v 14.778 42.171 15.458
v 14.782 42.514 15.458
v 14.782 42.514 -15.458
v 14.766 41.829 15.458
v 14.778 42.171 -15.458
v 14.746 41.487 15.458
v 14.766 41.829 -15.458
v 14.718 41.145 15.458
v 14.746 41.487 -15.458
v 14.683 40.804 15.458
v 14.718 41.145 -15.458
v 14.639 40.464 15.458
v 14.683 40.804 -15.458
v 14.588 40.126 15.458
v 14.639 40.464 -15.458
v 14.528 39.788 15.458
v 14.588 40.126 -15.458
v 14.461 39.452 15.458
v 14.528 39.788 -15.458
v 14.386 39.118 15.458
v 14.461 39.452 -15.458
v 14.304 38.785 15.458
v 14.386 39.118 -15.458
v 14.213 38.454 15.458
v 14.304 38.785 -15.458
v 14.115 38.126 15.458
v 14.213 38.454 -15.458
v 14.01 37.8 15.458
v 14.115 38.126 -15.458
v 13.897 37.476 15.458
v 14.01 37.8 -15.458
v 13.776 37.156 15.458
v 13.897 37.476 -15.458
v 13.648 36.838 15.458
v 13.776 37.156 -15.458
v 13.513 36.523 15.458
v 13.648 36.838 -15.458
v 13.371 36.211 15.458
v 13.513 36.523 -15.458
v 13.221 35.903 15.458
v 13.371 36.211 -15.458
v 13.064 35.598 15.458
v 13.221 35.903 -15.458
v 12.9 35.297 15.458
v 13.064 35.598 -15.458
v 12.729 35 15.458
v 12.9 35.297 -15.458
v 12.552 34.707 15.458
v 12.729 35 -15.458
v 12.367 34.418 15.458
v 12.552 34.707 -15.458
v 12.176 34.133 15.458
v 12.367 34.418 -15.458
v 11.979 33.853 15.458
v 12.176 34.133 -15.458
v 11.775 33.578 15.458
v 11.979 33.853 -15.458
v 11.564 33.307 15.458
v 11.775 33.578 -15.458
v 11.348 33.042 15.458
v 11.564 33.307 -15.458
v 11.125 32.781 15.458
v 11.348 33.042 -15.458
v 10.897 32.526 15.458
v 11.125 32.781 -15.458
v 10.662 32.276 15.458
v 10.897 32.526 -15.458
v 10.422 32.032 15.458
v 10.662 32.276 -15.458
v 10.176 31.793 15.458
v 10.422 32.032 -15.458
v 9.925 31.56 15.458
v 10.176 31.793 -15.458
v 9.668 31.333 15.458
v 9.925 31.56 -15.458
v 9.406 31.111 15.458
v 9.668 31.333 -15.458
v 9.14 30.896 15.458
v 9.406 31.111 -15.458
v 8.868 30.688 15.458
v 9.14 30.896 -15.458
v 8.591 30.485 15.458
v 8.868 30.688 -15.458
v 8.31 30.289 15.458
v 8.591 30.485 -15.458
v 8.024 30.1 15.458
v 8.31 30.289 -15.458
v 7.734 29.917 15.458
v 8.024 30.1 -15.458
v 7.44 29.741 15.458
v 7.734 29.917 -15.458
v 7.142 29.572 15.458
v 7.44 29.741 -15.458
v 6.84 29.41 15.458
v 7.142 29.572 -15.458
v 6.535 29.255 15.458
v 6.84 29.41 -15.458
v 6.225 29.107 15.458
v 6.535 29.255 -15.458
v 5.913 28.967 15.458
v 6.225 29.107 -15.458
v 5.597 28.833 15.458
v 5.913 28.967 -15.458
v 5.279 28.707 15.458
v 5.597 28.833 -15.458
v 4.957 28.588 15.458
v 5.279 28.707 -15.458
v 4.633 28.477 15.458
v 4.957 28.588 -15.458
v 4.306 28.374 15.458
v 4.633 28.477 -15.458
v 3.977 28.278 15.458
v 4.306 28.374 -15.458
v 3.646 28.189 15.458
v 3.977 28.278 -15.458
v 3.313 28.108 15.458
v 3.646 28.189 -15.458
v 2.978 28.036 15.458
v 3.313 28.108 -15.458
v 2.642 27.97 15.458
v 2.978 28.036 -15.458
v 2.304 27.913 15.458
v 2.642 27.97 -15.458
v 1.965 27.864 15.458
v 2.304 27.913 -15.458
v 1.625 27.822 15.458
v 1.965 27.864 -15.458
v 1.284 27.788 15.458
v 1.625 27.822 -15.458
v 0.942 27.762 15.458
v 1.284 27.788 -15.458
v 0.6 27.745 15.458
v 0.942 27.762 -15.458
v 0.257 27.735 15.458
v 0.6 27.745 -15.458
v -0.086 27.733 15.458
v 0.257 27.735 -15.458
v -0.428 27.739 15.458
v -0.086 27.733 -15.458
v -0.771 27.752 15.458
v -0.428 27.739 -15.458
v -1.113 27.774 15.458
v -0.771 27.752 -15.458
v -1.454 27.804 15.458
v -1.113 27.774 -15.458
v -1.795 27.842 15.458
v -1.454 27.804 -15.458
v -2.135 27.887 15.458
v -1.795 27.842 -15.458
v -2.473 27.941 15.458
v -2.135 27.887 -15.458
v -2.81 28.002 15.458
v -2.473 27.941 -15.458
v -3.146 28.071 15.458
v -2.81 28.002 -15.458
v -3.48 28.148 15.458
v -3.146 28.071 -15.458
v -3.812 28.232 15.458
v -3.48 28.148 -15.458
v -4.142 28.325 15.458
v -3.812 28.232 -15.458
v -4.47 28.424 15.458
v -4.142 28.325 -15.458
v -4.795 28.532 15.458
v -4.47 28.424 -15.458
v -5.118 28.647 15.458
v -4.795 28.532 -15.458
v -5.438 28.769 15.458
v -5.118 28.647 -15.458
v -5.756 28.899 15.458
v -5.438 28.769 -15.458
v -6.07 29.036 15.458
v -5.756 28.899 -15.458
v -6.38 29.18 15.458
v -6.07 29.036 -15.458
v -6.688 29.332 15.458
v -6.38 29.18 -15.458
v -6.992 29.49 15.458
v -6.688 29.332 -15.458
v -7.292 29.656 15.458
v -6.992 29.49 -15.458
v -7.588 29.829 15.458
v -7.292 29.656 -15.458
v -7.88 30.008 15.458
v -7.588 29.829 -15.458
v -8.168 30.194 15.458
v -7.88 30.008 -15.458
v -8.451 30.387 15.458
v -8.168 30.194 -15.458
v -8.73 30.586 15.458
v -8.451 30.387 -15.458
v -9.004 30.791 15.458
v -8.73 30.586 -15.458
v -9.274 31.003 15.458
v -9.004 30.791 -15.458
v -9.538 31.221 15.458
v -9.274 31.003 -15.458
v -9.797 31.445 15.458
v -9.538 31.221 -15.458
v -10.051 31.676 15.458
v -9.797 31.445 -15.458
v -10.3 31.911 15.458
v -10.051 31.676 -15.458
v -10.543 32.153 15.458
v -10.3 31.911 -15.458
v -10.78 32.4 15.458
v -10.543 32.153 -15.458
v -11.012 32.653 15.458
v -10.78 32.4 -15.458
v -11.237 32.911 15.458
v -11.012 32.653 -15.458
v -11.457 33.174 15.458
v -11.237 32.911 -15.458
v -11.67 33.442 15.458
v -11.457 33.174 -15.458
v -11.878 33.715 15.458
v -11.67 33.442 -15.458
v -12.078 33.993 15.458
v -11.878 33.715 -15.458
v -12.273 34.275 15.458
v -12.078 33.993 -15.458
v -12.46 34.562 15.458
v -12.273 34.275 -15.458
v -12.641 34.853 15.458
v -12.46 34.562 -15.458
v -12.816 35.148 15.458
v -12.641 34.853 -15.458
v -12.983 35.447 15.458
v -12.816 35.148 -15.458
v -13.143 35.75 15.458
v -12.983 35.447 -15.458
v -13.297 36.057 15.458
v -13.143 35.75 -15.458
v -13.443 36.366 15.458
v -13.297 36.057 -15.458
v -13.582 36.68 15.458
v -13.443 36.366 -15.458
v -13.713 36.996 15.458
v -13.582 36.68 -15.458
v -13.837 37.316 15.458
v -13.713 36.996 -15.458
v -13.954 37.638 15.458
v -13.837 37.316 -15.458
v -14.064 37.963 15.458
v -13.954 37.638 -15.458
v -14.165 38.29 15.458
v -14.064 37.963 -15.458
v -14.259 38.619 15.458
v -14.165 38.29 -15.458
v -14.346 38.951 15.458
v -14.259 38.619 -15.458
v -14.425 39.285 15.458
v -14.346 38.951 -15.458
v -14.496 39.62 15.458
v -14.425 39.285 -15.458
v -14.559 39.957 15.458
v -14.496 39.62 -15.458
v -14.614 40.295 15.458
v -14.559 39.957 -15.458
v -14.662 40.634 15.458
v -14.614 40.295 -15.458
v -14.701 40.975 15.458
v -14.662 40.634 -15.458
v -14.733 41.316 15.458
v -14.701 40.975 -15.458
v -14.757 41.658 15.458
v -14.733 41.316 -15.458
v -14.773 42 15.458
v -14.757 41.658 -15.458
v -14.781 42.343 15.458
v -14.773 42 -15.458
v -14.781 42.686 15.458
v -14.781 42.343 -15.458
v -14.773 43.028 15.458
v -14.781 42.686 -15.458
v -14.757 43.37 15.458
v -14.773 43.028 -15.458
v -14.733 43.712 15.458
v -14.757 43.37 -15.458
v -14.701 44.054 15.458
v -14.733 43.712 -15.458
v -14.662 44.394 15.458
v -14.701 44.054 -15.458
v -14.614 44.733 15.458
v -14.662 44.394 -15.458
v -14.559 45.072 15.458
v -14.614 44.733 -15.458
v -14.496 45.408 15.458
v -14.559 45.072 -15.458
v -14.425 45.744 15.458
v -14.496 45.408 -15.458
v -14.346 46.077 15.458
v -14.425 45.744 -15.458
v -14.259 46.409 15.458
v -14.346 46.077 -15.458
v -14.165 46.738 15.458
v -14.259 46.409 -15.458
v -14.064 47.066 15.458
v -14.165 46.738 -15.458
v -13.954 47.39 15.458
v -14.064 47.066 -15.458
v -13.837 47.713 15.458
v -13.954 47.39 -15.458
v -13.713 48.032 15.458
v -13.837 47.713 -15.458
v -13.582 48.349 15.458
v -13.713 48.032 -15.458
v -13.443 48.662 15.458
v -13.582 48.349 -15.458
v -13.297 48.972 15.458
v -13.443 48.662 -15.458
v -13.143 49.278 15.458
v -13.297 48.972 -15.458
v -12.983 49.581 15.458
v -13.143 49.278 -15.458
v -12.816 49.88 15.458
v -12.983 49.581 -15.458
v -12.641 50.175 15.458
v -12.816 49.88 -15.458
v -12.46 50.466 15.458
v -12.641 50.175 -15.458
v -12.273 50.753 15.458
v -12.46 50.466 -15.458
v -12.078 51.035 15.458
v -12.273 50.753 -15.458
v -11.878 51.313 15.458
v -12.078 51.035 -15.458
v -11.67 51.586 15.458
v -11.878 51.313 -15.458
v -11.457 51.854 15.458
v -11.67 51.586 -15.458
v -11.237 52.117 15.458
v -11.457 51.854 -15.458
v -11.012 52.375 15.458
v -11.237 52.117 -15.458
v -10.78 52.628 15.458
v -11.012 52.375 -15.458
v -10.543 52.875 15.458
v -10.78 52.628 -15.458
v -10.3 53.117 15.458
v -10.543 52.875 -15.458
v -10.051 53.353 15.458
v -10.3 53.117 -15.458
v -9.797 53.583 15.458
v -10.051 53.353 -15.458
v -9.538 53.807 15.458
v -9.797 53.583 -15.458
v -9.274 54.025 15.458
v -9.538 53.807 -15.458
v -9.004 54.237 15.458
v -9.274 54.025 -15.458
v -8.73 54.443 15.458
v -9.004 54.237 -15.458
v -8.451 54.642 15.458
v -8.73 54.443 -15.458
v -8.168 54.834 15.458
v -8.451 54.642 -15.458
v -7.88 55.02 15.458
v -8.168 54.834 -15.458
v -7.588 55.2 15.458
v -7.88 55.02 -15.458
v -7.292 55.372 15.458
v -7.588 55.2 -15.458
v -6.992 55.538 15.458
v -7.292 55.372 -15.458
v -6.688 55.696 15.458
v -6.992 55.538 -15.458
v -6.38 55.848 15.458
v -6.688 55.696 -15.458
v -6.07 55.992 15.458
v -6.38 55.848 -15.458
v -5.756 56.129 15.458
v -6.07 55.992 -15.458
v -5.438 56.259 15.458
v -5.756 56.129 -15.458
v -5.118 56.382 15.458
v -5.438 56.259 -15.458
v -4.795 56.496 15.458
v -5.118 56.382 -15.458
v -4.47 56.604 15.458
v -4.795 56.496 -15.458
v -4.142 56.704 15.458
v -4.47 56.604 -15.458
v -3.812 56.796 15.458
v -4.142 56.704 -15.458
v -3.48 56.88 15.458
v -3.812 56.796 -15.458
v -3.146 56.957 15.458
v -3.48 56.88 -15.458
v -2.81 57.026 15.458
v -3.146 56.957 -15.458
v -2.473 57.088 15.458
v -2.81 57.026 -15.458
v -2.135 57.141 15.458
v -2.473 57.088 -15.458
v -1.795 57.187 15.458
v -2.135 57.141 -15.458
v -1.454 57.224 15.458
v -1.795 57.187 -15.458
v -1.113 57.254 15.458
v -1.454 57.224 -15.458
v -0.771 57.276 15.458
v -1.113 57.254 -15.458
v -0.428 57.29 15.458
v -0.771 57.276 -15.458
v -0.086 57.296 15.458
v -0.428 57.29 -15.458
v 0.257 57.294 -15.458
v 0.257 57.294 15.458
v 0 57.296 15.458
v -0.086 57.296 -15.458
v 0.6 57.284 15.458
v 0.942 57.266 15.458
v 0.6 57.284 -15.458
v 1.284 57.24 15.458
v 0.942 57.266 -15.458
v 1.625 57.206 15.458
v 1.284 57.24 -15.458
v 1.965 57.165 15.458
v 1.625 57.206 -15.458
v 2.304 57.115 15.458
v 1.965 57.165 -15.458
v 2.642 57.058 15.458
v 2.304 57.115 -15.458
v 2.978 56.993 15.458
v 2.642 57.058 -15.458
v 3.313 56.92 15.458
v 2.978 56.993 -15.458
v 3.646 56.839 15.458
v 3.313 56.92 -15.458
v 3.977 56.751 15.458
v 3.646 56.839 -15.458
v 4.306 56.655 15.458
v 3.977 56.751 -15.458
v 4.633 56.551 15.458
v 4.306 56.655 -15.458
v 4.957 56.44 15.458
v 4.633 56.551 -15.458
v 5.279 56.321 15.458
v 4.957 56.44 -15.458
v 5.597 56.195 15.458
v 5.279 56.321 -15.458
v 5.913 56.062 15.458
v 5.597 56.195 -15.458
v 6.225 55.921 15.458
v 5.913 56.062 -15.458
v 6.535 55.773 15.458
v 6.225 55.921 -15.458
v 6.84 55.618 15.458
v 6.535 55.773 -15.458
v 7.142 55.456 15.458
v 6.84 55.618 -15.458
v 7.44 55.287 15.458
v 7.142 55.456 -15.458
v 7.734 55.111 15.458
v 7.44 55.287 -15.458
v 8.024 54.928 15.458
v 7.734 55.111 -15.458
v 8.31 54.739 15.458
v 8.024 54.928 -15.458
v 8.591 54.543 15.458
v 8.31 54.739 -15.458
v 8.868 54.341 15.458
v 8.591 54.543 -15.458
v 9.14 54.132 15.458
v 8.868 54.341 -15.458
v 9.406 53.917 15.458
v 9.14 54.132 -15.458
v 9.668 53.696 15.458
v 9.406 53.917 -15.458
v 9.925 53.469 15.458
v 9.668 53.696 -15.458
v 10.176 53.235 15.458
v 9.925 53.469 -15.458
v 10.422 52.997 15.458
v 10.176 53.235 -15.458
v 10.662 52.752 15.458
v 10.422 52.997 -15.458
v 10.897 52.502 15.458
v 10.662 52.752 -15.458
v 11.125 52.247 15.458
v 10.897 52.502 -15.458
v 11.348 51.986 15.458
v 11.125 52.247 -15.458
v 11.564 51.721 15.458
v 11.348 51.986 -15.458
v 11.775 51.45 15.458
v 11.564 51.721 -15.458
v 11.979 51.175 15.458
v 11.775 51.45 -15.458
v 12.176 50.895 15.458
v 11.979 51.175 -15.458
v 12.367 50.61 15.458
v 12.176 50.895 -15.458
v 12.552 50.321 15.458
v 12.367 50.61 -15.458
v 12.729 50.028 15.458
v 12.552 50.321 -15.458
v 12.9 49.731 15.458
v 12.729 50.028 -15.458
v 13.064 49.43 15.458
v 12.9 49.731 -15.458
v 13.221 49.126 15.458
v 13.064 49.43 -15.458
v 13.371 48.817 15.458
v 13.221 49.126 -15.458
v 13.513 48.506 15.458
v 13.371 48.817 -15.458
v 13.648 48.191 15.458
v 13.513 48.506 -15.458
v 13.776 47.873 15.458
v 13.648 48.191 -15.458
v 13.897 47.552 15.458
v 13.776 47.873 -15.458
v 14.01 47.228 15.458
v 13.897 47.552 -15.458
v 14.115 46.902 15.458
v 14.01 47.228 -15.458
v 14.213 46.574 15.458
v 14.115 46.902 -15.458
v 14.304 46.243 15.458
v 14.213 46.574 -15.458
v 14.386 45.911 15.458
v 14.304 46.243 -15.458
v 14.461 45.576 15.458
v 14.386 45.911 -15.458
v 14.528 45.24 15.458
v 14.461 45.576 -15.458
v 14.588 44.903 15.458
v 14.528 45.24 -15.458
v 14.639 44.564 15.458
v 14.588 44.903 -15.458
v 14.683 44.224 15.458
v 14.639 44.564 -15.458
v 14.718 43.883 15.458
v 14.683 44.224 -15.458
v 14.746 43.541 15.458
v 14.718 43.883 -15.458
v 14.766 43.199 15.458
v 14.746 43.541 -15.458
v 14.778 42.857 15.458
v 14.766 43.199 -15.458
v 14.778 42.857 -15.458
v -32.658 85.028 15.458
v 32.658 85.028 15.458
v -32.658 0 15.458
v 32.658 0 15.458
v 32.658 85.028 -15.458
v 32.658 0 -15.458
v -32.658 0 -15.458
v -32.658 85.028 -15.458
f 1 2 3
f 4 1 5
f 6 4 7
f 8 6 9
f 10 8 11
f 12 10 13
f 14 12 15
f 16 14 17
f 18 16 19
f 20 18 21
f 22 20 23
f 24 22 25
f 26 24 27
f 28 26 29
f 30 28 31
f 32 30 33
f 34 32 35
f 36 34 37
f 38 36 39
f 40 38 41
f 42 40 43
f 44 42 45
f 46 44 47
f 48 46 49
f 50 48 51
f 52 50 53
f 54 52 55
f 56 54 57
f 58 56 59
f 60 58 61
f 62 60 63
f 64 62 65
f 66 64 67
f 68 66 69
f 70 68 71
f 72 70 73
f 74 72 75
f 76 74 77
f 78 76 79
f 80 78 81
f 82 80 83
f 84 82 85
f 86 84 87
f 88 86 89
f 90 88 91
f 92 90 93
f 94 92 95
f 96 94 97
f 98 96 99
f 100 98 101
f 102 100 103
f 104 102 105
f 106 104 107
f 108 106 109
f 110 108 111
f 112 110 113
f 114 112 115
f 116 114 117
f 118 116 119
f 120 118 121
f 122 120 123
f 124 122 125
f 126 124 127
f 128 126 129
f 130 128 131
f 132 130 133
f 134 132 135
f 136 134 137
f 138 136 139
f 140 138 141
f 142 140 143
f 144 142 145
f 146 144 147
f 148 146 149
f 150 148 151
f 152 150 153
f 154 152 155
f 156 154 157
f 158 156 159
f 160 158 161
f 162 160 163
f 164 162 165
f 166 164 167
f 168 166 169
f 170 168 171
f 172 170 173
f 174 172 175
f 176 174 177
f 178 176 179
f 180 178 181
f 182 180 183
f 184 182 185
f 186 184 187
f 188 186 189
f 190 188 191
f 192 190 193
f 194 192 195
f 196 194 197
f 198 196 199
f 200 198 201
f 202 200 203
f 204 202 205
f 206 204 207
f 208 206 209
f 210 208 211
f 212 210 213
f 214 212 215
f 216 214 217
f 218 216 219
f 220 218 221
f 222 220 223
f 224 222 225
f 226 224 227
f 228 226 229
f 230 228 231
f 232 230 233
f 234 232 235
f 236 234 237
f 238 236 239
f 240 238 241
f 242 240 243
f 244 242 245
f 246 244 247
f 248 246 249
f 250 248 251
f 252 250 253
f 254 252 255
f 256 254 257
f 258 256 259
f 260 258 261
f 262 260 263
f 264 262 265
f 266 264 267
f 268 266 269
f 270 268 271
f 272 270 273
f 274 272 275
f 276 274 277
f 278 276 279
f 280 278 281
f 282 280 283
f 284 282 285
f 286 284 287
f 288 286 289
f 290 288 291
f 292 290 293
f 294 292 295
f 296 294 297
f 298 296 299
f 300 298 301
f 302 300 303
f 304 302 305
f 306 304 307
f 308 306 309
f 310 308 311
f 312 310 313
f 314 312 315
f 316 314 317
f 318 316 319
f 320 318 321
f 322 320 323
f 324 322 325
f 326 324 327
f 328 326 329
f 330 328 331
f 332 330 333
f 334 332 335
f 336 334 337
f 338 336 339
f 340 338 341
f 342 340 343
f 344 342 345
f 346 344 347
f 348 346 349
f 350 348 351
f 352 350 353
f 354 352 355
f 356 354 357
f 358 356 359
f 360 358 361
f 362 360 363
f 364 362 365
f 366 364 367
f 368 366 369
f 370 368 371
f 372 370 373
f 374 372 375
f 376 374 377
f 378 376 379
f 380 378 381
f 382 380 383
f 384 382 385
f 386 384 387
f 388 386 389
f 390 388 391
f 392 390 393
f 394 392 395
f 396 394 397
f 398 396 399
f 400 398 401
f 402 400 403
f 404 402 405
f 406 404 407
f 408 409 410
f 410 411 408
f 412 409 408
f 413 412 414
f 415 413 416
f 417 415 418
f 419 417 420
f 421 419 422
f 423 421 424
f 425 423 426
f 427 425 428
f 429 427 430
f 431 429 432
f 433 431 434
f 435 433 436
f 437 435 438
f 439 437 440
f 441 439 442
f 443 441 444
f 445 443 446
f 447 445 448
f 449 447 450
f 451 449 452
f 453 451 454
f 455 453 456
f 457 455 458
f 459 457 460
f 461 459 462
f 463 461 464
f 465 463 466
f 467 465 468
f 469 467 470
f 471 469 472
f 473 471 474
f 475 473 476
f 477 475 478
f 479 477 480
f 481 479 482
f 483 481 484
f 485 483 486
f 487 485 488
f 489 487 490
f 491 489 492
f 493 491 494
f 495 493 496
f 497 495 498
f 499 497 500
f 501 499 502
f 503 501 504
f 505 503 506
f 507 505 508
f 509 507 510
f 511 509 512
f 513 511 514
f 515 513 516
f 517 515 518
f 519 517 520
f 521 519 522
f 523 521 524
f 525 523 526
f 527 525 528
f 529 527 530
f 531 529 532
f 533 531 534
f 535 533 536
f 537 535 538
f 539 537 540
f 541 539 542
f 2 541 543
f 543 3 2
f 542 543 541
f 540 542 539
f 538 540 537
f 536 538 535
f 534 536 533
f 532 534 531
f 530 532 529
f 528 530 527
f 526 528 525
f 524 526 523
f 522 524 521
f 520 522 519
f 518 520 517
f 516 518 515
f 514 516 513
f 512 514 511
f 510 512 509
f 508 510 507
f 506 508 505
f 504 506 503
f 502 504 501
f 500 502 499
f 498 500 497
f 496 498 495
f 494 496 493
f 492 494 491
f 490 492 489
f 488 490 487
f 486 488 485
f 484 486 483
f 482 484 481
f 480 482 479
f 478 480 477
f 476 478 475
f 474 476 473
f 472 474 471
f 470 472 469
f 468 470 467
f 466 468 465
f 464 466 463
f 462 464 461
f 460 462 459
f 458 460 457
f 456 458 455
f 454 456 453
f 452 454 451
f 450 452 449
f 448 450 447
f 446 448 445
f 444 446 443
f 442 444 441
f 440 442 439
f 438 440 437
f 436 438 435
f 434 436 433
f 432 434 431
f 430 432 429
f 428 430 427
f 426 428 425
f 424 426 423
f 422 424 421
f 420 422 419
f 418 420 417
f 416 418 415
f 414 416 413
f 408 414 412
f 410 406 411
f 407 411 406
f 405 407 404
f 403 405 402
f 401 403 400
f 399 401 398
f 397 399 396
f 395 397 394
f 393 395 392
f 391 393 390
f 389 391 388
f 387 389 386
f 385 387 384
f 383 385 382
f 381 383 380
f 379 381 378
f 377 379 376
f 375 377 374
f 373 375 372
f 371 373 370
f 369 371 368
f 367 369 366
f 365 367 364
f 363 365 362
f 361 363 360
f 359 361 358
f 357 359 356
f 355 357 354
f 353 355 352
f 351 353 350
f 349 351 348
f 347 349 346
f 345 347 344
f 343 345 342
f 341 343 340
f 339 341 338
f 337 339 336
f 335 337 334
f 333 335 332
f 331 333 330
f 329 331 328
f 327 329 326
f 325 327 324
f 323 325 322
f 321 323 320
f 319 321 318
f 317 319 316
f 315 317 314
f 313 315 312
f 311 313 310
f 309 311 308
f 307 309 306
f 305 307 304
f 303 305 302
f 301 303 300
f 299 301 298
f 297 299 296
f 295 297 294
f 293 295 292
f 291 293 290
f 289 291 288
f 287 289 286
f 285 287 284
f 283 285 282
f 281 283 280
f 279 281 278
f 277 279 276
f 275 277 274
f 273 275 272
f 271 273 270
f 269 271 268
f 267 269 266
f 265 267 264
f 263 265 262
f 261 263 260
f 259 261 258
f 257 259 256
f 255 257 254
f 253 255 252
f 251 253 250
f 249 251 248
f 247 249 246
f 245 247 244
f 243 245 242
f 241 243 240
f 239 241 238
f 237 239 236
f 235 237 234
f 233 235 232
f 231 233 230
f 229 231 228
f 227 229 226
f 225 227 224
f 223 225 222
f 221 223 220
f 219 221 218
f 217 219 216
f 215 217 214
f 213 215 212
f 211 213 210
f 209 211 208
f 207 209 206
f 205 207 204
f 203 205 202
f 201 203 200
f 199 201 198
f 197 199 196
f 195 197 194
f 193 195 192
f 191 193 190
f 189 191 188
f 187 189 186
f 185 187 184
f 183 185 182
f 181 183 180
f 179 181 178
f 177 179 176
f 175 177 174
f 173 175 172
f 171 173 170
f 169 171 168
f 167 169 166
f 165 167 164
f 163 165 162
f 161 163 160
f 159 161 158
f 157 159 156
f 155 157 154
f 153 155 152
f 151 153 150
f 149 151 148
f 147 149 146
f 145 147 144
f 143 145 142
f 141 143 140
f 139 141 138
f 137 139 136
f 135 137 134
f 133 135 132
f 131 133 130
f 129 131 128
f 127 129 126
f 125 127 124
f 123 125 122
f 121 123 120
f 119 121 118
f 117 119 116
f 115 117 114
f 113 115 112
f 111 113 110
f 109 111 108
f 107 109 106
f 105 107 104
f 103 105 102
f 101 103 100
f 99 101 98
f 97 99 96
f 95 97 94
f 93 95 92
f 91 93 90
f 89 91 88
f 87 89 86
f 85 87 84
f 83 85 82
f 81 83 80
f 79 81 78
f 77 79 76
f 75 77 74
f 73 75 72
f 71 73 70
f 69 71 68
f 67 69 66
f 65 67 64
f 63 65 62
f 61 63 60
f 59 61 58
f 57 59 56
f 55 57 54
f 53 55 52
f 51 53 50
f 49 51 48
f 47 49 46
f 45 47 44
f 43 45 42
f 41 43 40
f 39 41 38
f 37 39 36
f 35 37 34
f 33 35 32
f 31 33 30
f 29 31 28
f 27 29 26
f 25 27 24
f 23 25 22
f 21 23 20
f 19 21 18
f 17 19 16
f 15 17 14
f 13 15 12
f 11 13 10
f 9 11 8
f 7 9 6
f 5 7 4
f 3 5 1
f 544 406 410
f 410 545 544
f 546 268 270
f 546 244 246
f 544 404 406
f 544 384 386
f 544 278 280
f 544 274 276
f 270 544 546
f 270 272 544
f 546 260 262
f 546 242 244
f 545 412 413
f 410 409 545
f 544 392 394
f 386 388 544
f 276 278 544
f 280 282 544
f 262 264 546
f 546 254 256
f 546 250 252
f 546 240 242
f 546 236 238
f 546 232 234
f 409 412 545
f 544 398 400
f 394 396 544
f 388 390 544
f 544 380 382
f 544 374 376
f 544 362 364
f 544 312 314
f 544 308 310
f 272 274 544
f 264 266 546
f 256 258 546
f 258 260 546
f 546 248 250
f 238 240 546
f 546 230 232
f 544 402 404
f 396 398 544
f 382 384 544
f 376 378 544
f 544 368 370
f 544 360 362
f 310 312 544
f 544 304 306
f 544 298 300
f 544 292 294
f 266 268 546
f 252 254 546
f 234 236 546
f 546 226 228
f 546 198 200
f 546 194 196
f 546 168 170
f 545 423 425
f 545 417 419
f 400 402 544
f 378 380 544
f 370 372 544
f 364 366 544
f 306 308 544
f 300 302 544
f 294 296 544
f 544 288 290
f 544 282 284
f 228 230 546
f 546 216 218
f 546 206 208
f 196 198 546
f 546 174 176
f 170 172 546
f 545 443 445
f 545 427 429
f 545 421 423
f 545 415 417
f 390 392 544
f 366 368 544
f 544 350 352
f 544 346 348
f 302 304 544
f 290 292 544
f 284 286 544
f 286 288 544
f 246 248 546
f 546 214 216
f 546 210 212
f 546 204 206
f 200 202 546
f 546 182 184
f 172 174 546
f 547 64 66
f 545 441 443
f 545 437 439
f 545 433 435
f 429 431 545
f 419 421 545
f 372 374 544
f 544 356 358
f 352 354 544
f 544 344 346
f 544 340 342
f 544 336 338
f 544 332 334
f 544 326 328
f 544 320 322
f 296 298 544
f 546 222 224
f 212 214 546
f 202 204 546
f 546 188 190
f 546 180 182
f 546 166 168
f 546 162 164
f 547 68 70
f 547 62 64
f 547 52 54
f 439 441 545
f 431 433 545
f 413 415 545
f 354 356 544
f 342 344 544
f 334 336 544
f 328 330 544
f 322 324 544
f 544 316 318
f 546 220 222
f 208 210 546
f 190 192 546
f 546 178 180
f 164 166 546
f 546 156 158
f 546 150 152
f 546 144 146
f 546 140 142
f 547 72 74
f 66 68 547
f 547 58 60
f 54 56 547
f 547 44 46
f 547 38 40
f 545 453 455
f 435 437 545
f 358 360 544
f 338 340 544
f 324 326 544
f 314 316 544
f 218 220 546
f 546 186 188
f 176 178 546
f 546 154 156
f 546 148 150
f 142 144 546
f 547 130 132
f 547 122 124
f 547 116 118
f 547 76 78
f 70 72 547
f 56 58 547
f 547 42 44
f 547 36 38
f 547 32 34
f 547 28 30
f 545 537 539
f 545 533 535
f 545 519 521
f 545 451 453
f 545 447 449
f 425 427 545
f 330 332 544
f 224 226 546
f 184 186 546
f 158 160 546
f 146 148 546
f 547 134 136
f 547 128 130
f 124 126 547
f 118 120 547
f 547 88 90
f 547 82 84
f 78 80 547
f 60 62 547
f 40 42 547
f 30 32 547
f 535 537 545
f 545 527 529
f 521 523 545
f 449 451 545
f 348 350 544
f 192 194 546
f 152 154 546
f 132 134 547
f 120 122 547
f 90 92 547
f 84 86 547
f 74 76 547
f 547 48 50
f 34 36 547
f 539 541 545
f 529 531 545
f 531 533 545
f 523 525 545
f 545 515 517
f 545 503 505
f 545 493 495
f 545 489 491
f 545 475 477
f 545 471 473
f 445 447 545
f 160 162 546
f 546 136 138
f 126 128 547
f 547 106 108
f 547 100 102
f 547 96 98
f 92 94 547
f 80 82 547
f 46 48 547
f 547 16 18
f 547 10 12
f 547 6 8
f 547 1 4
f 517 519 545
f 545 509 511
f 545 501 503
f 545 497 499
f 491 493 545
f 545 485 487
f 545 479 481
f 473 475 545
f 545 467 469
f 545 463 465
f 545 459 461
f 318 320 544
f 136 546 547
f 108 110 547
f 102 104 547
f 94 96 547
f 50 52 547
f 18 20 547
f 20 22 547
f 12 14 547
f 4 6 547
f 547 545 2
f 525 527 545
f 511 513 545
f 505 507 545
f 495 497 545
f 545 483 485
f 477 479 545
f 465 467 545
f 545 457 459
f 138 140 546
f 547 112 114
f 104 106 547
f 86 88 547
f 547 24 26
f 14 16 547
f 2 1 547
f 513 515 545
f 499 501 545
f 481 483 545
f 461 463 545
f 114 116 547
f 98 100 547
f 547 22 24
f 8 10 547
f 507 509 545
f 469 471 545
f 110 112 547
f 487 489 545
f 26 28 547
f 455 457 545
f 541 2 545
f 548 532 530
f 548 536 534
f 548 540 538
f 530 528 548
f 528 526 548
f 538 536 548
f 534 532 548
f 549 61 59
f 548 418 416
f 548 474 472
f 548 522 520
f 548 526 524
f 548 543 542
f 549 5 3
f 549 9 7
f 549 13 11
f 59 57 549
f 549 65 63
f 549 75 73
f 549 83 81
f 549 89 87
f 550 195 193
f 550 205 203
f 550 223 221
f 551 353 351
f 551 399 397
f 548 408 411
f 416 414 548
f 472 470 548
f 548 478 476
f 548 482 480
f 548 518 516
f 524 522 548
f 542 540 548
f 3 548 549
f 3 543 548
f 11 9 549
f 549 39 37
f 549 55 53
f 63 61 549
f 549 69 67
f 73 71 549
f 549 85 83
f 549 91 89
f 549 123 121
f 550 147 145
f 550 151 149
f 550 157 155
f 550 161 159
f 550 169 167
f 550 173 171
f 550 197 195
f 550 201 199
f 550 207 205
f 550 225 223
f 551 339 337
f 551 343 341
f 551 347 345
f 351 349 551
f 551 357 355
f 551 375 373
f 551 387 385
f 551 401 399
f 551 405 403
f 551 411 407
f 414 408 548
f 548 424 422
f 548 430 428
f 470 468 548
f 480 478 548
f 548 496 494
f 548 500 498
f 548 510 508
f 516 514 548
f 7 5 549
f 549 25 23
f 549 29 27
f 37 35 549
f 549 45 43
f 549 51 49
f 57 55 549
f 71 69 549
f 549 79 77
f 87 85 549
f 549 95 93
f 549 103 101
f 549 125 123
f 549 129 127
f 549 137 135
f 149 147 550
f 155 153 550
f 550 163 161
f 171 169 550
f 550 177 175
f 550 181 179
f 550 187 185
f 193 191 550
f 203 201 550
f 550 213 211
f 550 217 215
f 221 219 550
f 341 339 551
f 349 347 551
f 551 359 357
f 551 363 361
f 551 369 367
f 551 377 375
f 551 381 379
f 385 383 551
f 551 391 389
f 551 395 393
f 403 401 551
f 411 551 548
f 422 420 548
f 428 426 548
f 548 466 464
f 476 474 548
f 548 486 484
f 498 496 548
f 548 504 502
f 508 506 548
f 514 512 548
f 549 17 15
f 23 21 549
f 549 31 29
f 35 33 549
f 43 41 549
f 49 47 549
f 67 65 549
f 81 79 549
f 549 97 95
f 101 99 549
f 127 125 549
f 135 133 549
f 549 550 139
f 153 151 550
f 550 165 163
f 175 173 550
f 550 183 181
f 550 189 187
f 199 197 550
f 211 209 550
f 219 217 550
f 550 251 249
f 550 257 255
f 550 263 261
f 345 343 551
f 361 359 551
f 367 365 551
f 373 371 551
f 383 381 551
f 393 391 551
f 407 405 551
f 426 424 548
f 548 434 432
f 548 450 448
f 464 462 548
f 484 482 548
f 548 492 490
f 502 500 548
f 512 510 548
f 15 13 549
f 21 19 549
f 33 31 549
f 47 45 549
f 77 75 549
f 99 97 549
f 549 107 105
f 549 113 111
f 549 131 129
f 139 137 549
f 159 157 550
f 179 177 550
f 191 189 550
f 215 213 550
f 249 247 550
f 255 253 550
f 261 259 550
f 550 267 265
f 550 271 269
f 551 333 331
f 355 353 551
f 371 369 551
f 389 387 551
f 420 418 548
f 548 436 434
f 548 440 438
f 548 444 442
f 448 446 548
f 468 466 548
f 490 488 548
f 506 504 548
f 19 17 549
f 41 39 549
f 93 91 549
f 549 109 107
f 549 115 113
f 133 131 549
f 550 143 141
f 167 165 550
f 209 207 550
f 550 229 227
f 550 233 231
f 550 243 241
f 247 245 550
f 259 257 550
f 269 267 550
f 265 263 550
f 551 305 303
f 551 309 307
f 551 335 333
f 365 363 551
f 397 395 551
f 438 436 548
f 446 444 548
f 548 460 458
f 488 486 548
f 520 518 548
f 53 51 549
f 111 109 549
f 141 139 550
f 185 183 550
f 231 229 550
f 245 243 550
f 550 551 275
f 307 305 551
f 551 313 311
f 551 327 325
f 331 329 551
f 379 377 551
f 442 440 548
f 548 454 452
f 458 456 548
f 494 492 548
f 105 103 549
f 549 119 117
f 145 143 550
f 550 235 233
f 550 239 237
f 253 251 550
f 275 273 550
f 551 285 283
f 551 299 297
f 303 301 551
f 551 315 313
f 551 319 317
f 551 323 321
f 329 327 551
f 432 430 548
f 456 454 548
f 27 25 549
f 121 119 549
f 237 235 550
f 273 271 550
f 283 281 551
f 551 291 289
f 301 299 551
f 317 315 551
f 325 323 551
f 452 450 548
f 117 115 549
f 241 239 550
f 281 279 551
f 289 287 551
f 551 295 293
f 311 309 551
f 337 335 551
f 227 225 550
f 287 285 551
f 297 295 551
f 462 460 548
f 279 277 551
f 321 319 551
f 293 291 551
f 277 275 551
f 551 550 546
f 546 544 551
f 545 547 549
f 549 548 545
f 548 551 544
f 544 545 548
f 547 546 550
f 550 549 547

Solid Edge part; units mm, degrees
sketch "Sketch1" plane through (0, 0, 0) normal (0, -1, 0) x (1, 0, 0)
  line L0 (-32.6578, 15.458) -> (32.6578, 15.458)
  line L1 (32.6578, 15.458) -> (32.6578, -15.458)
  line L2 (32.6578, -15.458) -> (-32.6578, -15.458)
  line L3 (-32.6578, -15.458) -> (-32.6578, 15.458)
extrude "Protrusion1" add sketch "Sketch1" against normal blind 85.0283
sketch "Sketch2" plane through (0, 42.5142, 15.458) normal (0, 0, 1) x (0, 1, 0)
  circle A0 centre (0, 0) radius 14.7818
extrude "Cutout1" cut sketch "Sketch2" against normal up to next
